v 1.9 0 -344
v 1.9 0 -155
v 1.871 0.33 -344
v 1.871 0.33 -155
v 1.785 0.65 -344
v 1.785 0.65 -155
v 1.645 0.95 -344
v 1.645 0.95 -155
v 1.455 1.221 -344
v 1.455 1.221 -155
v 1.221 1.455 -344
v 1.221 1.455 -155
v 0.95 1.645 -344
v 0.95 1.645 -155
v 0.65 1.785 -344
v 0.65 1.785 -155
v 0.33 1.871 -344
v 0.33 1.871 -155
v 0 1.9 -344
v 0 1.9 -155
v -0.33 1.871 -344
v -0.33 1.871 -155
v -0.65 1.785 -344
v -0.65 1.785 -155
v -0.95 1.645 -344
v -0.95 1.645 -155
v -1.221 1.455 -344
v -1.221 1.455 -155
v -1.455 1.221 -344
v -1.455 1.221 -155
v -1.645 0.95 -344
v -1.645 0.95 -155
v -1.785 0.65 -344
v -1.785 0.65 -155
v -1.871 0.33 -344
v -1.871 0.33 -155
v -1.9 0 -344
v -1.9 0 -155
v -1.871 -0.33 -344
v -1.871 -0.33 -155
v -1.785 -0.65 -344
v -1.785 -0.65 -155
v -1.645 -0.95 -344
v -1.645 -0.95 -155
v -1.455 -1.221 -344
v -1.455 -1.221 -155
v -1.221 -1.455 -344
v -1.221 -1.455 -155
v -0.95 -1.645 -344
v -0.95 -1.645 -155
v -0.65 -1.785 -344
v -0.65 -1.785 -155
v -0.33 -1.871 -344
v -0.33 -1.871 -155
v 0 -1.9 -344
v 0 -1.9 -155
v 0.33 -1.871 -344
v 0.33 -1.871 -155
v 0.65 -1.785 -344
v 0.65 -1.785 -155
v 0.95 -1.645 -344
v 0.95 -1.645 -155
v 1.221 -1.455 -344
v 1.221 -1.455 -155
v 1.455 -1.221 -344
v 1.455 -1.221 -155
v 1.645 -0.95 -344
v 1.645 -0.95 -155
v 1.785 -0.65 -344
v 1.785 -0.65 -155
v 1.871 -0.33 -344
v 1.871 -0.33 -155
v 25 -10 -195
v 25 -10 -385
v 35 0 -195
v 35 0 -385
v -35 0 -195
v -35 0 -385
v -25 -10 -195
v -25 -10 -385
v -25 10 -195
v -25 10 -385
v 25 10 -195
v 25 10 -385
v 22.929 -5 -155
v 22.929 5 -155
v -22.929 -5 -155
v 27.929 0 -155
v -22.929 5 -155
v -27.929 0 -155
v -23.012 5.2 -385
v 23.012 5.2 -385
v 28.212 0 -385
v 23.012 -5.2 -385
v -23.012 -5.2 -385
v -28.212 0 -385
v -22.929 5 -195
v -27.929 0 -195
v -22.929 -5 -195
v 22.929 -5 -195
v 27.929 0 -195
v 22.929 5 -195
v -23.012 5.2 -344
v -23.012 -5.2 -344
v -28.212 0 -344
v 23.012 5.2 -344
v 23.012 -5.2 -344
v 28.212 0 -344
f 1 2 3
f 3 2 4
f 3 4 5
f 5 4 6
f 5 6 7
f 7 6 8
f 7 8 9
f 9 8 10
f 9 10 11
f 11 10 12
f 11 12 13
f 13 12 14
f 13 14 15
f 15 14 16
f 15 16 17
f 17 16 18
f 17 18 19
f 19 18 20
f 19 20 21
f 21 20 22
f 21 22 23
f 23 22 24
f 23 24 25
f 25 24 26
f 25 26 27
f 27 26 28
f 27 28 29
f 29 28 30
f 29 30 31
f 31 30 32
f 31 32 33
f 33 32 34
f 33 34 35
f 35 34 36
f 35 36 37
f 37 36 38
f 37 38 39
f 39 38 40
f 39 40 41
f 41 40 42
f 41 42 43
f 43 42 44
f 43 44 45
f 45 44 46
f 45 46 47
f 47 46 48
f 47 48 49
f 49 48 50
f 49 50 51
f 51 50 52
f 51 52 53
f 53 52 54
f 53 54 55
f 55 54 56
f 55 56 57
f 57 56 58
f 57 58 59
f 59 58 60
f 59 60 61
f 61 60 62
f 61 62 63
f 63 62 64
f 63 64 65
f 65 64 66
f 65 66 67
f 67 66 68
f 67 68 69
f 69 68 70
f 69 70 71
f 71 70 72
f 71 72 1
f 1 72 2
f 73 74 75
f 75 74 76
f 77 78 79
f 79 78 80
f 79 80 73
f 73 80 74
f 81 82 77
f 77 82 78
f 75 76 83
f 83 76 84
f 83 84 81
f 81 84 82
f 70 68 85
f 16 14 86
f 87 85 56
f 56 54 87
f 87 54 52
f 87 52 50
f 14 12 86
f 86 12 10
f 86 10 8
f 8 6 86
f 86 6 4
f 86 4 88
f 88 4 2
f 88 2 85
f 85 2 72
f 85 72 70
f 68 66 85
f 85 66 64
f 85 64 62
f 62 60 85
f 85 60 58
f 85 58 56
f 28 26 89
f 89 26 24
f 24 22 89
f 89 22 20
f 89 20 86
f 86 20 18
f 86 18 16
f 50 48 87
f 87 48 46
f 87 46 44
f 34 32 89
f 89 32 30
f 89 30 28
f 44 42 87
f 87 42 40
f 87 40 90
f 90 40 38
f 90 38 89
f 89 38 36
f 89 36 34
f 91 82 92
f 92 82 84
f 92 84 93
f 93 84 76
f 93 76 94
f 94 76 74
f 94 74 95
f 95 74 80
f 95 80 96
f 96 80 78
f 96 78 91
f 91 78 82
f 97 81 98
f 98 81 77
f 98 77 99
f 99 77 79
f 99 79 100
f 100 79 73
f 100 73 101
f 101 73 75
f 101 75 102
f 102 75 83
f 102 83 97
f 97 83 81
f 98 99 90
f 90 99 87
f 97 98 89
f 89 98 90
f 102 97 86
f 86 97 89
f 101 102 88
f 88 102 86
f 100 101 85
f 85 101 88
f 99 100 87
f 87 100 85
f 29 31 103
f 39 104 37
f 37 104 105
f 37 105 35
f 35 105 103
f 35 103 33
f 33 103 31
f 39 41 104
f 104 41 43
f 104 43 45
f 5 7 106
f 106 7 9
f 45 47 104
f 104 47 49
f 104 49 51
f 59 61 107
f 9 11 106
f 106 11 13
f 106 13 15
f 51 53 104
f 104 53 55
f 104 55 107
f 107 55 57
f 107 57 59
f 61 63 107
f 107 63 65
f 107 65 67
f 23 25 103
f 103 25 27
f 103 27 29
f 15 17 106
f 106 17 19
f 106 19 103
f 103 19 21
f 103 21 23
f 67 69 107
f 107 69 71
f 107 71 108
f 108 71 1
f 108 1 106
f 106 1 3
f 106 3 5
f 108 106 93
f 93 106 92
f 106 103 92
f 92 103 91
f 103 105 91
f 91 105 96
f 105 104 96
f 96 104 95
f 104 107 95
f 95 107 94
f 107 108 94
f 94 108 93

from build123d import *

# Parameters (mm, degrees)
EXTRUDE_1_DEPTH          = 18
CHAMFER_1_SIZE           = 5
CHAMFER_2_SIZE           = 5
CUT_EXTRUDE_1_DEPTH      = 8
EXTRUDE_2_REACH          = 696.741
EXTRUDE_2_END_RADIUS     = 240
EXTRUDE_3_DEPTH          = 5
EXTRUDE_4_REACH          = 929.644
EXTRUDE_4_END_RADIUS     = 232
SKETCH_10_R              = 12
CUT_EXTRUDE_7_DEPTH      = 695.872110635
CUT_EXTRUDE_7_DEPTH_BACK = 695.872110635
SKETCH_16_OUTSIDE_W      = 362.68
SKETCH_16_OUTSIDE_H      = 1204.68
SKETCH_16_OUTSIDE_W_2    = 100
SKETCH_16_OUTSIDE_H_2    = 230
SKETCH_21_R              = 1.9
CUT_EXTRUDE_17_DEPTH     = 233.862620444
SKETCH_34_OUTSIDE_W      = 120.25
SKETCH_34_OUTSIDE_H      = 70.25
CUT_EXTRUDE_18_DEPTH     = 40
CUT_EXTRUDE_19_DEPTH     = 41


with BuildPart() as part:
    # 草图4 → 放样1 section 0
    with BuildSketch(Plane(origin=(0, 10, 0), x_dir=(1, 0, 0), z_dir=(0, 1, 0))):
        with BuildLine():
            Line((25, 0), (-25, 0))
            Line((-25, 0), (-25, 630))
            Line((-25, 630), (0, 672.857142857))
            Line((0, 672.857142857), (25, 630))
            Line((25, 630), (25, 0))
        make_face()
    # 草图1 → 放样1 section 1
    with BuildSketch(Plane(origin=(0, 0, 0), x_dir=(1, 0, 0), z_dir=(0, 1, 0))):
        with BuildLine():
            Line((-35, 0), (35, 0))
            Line((35, 0), (35, 630))
            Line((35, 630), (0, 690))
            Line((0, 690), (-35, 630))
            Line((-35, 630), (-35, 0))
        make_face()
    loft_1 = loft()

    # 镜向1: 放样1 across plane
    add(loft_1.mirror(Plane.ZX))



with BuildPart() as body_2:
    # 草图5 → 凸台-拉伸1 (new, symmetric)
    with BuildSketch(Plane(origin=(0, 0, 0), x_dir=(1, 0, 0), z_dir=(0, 1, 0))):
        with BuildLine():
            ThreePointArc((-66.346774613, -65.189169183), (0, -55.5), (66.346774613, -65.189169183))
            ThreePointArc((66.346774613, -65.189169183), (73.061224406, -64.270510235), (76.791165228, -58.612302768))
            ThreePointArc((76.791165228, -58.612302768), (79, -30.5), (76.791165228, -2.387697232))
            ThreePointArc((76.791165228, -2.387697232), (0, -15.004503167), (-76.791165228, -2.387697232))
            ThreePointArc((-76.791165228, -2.387697232), (-79, -30.5), (-76.791165228, -58.612302768))
            ThreePointArc((-76.791165228, -58.612302768), (-73.061224406, -64.270510235), (-66.346774613, -65.189169183))
        make_face()
    extrude(amount=EXTRUDE_1_DEPTH, both=True)

    # 倒角1
    chamfer_1_edges = [body_2.edges().sort_by_distance(p)[0] for p in [
        (0, 18, 15.004503167),
        (-79, 18, 30.5),
        (-73.061224406, 18, 64.270510235),
        (0, 18, 55.5),
        (73.061224406, 18, 64.270510235),
        (0, -18, 55.5),
        (-73.061224406, -18, 64.270510235),
        (-79, -18, 30.5),
        (79, -18, 30.5),
        (73.061224406, -18, 64.270510235),
        (79, 18, 30.5),
    ]]
    chamfer(chamfer_1_edges, length=CHAMFER_1_SIZE)

    # 倒角2
    chamfer_2_edges = [body_2.edges().sort_by_distance(p)[0] for p in [
        (0, -18, 15.004503167),
    ]]
    chamfer(chamfer_2_edges, length=CHAMFER_2_SIZE)

    # 草图6 → 切除-拉伸1 (cut)
    with BuildSketch(Plane(origin=(0, 18, 0), x_dir=(1, 0, 0), z_dir=(0, 1, 0))):
        with BuildLine():
            ThreePointArc((67.221840199, -55.023712607), (68.932610365, -35.286223394), (68.335500378, -15.483731767))
            ThreePointArc((68.335500378, -15.483731767), (0, -25.004503167), (-68.335500378, -15.483731767))
            ThreePointArc((-68.335500378, -15.483731767), (-68.932610365, -35.286223394), (-67.221840199, -55.023712607))
            ThreePointArc((-67.221840199, -55.023712607), (0, -45.5), (67.221840199, -55.023712607))
        make_face()
    cut_extrude_1 = extrude(amount=-CUT_EXTRUDE_1_DEPTH, mode=Mode.SUBTRACT)

    # 镜向2: 切除-拉伸1 across plane
    add(cut_extrude_1.mirror(Plane.ZX), mode=Mode.SUBTRACT)


with BuildPart() as part_1:
    add(part.part)

    add(body_2.part)  # 凸台-拉伸2 merges body 2
    # 凸台-拉伸2: up to this cylinder (the profile starts inside it)
    extrude_2_end = Plane(origin=(0, 0, -224.995496833), z_dir=(0, -1, 0)) * Cylinder(EXTRUDE_2_END_RADIUS, 1874.482, mode=Mode.PRIVATE)
    # 草图7 → 凸台-拉伸2 (add, up to the surface)
    with BuildSketch(Plane.XY, mode=Mode.PRIVATE) as extrude_2_sk1:
        Polygon((-25.828427125, 12), (-37.828427125, 0), (-25.828427125, -12), (25.828427125, -12), (37.828427125, 0), (25.828427125, 12), align=None)
    extrude_2_tool1 = extrude(extrude_2_sk1.sketch, amount=EXTRUDE_2_REACH, mode=Mode.PRIVATE) & extrude_2_end
    add(extrude_2_tool1.solids().sort_by_distance((0, 0, 0))[0])

    # 草图8 → 凸台-拉伸3 (add)
    with BuildSketch(Plane(origin=(0, 0, 0), x_dir=(-1, 0, 0), z_dir=(0, 0, -1))):
        Polygon((25.828427125, 12), (-25.828427125, 12), (-37.828427125, 0), (-25.828427125, -12), (25.828427125, -12), (37.828427125, 0), align=None)
    extrude(amount=EXTRUDE_3_DEPTH)



with BuildPart() as body_2_2:
    # 草图9 → 旋转1 (revolve)
    with BuildSketch(Plane(origin=(0, 0, 0), x_dir=(1, 0, 0), z_dir=(0, 1, 0))):
        Polygon((0, -310), (0, -234), (-12, -234), (-22.5, -256), align=None)
    revolve(axis=Axis((0, 0, -690), (0, 0, 1)))


with BuildPart() as part_2:
    add(part_1.part)

    add(body_2_2.part)  # 凸台-拉伸4 merges body 2 2
    # 凸台-拉伸4: up to this cylinder (the profile starts inside it)
    extrude_4_end = Plane(origin=(0, 0, 287.5), z_dir=(0, -1, 0)) * Cylinder(EXTRUDE_4_END_RADIUS, 2324.288, mode=Mode.PRIVATE)
    # 草图10 → 凸台-拉伸4 (add, up to the surface)
    with BuildSketch(Plane(origin=(0, 0, 234), x_dir=(-1, 0, 0), z_dir=(0, 0, -1)), mode=Mode.PRIVATE) as extrude_4_sk1:
        with Locations(Location((0, 0, 0), (0, 0, 90))):
            Circle(SKETCH_10_R)
    extrude_4_tool1 = extrude(extrude_4_sk1.sketch, amount=EXTRUDE_4_REACH, mode=Mode.PRIVATE) & extrude_4_end
    add(extrude_4_tool1.solids().sort_by_distance((0, 0, 234))[0])

    # 草图16 outside → 切除-拉伸7 (cut, two sides: drawn at the far end of the back side and taken through both)
    with BuildSketch(Plane(origin=(0, 0, 0), x_dir=(1, 0, 0), z_dir=(0, 1, 0)).offset(-CUT_EXTRUDE_7_DEPTH_BACK)):
        with Locations((0, 190)):
            Rectangle(SKETCH_16_OUTSIDE_W, SKETCH_16_OUTSIDE_H)
        with Locations((0, 270)):
            Rectangle(SKETCH_16_OUTSIDE_W_2, SKETCH_16_OUTSIDE_H_2, mode=Mode.SUBTRACT)
    extrude(amount=CUT_EXTRUDE_7_DEPTH + CUT_EXTRUDE_7_DEPTH_BACK, mode=Mode.SUBTRACT)

    # 草图21 → 切除-拉伸17 (cut, through all)
    with BuildSketch(Plane.XY.offset(-155)):
        Circle(SKETCH_21_R)
    extrude(amount=-CUT_EXTRUDE_17_DEPTH, mode=Mode.SUBTRACT)

    # 草图34 outside → 切除-拉伸18 (cut)
    with BuildSketch(Plane.XY.offset(-155)):
        Rectangle(SKETCH_34_OUTSIDE_W, SKETCH_34_OUTSIDE_H)
        Polygon((-22.928932188, -5), (22.928932188, -5), (27.928932188, 0), (22.928932188, 5), (-22.928932188, 5), (-27.928932188, 0), align=None, mode=Mode.SUBTRACT)
    extrude(amount=-CUT_EXTRUDE_18_DEPTH, mode=Mode.SUBTRACT)

    # 草图35 → 切除-拉伸19 (cut)
    with BuildSketch(Plane(origin=(0, 0, -385), x_dir=(-1, 0, 0), z_dir=(0, 0, -1))):
        Polygon((-28.211774901, 0), (-23.011774901, -5.2), (23.011774901, -5.2), (28.211774901, 0), (23.011774901, 5.2), (-23.011774901, 5.2), align=None)
    extrude(amount=-CUT_EXTRUDE_19_DEPTH, mode=Mode.SUBTRACT)


solid = part_2.part
